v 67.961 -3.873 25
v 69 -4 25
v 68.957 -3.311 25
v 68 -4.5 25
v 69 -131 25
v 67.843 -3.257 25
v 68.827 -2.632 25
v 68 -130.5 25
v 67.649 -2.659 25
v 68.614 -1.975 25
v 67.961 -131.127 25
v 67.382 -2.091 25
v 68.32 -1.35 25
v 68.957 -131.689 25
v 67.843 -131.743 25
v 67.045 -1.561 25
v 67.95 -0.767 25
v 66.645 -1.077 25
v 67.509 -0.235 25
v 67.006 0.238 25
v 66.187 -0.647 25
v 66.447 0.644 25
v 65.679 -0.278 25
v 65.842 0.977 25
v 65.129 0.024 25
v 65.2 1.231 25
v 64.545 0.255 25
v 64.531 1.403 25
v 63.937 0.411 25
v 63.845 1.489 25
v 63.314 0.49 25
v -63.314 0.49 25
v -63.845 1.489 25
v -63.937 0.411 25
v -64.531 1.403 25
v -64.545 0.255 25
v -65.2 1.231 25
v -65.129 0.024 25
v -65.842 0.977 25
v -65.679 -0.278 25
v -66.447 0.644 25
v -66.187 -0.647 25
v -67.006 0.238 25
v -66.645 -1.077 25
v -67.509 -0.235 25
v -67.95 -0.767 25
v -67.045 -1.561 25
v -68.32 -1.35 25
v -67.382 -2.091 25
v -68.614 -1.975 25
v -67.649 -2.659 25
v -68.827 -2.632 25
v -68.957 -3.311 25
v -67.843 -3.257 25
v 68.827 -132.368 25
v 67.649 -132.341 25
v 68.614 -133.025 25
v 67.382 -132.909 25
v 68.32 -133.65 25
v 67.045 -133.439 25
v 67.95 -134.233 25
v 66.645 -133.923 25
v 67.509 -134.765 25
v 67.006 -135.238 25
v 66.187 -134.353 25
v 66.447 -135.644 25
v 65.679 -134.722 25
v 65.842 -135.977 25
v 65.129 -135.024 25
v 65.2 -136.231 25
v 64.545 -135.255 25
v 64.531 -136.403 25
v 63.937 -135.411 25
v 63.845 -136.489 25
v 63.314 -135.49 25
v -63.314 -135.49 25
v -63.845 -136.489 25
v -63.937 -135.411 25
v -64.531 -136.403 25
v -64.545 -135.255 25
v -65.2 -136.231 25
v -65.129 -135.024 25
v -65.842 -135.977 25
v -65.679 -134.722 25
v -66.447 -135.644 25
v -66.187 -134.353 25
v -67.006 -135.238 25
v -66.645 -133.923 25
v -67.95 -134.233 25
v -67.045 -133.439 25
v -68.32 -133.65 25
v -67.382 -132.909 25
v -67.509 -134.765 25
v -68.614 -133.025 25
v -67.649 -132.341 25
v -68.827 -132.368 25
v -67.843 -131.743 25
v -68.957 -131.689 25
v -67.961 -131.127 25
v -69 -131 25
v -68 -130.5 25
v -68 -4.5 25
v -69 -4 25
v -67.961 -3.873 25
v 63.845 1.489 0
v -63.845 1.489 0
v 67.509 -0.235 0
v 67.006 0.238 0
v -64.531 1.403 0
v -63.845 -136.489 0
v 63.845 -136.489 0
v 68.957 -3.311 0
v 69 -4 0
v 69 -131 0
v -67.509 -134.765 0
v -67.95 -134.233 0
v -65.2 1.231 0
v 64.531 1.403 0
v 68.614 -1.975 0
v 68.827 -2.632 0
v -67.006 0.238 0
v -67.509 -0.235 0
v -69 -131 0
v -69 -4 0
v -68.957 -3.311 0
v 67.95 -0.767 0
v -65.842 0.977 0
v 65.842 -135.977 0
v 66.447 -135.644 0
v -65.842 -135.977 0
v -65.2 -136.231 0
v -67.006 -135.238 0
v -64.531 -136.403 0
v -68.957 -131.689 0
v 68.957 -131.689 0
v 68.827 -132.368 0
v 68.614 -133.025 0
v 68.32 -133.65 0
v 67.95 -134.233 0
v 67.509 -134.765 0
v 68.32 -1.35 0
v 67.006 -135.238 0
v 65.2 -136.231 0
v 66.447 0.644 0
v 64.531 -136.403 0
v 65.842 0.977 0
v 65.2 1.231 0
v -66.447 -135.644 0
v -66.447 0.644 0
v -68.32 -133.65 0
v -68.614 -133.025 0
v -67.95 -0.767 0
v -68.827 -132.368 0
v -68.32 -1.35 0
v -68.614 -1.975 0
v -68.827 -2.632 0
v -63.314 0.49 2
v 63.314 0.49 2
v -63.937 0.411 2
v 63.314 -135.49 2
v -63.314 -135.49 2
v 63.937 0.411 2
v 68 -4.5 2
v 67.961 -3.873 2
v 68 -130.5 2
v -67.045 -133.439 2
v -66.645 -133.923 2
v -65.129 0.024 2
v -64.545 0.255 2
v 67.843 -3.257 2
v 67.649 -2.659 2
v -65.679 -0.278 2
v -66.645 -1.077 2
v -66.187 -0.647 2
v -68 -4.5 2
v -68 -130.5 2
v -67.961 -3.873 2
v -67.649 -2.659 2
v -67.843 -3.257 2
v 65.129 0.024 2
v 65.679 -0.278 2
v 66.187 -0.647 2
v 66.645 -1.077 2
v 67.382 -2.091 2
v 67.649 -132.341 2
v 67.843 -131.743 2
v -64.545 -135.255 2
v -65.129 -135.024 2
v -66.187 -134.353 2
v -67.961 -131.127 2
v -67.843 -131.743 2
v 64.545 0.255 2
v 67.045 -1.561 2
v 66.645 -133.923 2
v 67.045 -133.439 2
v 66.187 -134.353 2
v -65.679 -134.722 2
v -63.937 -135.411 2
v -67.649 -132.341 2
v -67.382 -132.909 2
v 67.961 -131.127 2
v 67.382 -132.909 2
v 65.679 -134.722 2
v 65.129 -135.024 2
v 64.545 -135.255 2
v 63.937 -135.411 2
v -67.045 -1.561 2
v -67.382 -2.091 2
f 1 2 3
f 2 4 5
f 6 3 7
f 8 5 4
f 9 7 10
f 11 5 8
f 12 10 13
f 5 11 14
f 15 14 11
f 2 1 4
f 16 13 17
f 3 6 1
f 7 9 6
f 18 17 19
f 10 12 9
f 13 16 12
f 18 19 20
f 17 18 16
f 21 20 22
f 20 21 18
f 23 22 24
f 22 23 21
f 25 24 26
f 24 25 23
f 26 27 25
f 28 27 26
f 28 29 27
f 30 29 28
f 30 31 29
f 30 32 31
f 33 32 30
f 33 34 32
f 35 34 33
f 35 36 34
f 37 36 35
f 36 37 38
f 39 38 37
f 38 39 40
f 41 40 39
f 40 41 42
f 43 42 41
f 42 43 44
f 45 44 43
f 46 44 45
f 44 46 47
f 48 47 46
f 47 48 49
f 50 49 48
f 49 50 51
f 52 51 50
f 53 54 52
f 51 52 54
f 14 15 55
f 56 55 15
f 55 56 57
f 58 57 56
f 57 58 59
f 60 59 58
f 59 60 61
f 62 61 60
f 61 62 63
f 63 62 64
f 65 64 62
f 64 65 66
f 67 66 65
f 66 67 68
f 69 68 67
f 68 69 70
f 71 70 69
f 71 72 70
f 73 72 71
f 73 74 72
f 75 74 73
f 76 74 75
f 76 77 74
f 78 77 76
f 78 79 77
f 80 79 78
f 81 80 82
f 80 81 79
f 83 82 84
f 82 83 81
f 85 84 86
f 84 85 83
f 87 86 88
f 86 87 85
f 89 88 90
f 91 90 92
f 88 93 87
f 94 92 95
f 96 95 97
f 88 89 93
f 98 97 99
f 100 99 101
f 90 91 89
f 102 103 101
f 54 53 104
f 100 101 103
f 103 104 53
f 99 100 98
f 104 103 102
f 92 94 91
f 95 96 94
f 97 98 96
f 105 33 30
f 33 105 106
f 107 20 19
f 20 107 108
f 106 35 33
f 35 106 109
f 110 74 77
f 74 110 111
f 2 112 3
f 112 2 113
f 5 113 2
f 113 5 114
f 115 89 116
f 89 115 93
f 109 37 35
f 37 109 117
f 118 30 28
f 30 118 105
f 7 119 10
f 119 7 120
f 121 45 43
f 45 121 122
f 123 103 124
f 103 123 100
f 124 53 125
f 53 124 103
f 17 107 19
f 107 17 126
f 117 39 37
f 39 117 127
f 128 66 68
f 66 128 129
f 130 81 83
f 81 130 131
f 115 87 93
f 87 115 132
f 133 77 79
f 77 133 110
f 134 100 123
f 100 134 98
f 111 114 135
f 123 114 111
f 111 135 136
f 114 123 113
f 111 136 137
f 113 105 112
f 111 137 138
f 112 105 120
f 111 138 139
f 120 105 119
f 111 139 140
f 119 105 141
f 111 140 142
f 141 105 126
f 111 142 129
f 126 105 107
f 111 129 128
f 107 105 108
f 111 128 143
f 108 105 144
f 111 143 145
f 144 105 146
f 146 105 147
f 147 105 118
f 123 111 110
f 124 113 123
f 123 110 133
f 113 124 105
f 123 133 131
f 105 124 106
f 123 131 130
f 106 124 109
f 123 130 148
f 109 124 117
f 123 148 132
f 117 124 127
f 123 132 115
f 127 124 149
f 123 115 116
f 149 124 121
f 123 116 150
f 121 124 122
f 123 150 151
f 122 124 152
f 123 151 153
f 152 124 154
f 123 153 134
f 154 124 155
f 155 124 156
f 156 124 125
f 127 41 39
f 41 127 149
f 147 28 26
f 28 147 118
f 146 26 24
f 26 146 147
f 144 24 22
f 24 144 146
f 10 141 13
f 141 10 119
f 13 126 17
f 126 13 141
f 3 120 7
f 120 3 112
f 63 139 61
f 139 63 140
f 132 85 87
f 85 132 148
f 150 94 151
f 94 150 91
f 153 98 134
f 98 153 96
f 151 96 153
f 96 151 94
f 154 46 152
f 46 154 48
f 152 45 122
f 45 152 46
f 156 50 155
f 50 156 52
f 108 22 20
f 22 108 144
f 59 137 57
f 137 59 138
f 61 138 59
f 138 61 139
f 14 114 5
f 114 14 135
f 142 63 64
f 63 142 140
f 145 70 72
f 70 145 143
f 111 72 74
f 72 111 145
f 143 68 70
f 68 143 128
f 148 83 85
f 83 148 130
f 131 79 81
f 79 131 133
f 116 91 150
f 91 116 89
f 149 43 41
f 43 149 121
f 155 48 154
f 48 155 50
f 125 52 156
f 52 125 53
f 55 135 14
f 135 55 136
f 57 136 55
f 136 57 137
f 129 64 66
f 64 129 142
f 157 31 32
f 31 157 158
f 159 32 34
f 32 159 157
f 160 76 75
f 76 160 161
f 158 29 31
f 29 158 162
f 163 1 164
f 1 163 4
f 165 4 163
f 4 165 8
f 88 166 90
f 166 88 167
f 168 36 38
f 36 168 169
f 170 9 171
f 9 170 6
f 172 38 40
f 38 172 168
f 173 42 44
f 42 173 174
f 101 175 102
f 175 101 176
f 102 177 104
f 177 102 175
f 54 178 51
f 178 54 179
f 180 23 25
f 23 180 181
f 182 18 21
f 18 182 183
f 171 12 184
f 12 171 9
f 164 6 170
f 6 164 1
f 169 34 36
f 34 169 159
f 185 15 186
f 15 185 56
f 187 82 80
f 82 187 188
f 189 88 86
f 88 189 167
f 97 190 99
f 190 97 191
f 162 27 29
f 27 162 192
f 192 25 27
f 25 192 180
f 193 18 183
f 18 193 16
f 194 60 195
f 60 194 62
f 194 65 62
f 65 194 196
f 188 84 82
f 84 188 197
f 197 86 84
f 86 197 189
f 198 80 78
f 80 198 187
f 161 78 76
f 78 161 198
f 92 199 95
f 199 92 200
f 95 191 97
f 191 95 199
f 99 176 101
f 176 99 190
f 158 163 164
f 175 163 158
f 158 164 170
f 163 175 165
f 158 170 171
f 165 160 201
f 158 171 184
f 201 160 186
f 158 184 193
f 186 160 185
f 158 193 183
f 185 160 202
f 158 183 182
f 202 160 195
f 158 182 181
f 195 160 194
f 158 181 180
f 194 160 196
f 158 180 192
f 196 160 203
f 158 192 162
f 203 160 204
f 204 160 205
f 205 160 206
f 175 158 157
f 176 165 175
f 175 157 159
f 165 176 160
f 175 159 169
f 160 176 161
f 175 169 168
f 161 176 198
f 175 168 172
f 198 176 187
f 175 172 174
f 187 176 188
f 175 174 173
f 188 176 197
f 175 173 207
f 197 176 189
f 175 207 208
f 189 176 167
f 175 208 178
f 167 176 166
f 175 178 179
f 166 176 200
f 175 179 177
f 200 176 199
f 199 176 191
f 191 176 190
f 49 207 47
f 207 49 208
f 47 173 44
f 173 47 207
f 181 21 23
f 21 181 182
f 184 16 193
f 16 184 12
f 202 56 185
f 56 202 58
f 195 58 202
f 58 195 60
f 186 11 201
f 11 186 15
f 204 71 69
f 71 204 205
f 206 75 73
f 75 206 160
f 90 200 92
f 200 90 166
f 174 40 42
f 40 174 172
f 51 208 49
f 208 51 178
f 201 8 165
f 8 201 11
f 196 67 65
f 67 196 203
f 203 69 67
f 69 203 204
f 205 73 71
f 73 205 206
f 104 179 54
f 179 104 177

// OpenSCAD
$fn = 50;


difference() {
	union() {
		translate(v = [0, -67.5000000000, 0]) {
			hull() {
				translate(v = [-63.5000000000, 63.5000000000, 0]) {
					cylinder(h = 25, r = 5.5000000000);
				}
				translate(v = [63.5000000000, 63.5000000000, 0]) {
					cylinder(h = 25, r = 5.5000000000);
				}
				translate(v = [-63.5000000000, -63.5000000000, 0]) {
					cylinder(h = 25, r = 5.5000000000);
				}
				translate(v = [63.5000000000, -63.5000000000, 0]) {
					cylinder(h = 25, r = 5.5000000000);
				}
			}
		}
	}
	union() {
		translate(v = [0, -67.5000000000, 2]) {
			hull() {
				translate(v = [-63.0000000000, 63.0000000000, 0]) {
					cylinder(h = 50, r = 5);
				}
				translate(v = [63.0000000000, 63.0000000000, 0]) {
					cylinder(h = 50, r = 5);
				}
				translate(v = [-63.0000000000, -63.0000000000, 0]) {
					cylinder(h = 50, r = 5);
				}
				translate(v = [63.0000000000, -63.0000000000, 0]) {
					cylinder(h = 50, r = 5);
				}
			}
		}
	}
}
